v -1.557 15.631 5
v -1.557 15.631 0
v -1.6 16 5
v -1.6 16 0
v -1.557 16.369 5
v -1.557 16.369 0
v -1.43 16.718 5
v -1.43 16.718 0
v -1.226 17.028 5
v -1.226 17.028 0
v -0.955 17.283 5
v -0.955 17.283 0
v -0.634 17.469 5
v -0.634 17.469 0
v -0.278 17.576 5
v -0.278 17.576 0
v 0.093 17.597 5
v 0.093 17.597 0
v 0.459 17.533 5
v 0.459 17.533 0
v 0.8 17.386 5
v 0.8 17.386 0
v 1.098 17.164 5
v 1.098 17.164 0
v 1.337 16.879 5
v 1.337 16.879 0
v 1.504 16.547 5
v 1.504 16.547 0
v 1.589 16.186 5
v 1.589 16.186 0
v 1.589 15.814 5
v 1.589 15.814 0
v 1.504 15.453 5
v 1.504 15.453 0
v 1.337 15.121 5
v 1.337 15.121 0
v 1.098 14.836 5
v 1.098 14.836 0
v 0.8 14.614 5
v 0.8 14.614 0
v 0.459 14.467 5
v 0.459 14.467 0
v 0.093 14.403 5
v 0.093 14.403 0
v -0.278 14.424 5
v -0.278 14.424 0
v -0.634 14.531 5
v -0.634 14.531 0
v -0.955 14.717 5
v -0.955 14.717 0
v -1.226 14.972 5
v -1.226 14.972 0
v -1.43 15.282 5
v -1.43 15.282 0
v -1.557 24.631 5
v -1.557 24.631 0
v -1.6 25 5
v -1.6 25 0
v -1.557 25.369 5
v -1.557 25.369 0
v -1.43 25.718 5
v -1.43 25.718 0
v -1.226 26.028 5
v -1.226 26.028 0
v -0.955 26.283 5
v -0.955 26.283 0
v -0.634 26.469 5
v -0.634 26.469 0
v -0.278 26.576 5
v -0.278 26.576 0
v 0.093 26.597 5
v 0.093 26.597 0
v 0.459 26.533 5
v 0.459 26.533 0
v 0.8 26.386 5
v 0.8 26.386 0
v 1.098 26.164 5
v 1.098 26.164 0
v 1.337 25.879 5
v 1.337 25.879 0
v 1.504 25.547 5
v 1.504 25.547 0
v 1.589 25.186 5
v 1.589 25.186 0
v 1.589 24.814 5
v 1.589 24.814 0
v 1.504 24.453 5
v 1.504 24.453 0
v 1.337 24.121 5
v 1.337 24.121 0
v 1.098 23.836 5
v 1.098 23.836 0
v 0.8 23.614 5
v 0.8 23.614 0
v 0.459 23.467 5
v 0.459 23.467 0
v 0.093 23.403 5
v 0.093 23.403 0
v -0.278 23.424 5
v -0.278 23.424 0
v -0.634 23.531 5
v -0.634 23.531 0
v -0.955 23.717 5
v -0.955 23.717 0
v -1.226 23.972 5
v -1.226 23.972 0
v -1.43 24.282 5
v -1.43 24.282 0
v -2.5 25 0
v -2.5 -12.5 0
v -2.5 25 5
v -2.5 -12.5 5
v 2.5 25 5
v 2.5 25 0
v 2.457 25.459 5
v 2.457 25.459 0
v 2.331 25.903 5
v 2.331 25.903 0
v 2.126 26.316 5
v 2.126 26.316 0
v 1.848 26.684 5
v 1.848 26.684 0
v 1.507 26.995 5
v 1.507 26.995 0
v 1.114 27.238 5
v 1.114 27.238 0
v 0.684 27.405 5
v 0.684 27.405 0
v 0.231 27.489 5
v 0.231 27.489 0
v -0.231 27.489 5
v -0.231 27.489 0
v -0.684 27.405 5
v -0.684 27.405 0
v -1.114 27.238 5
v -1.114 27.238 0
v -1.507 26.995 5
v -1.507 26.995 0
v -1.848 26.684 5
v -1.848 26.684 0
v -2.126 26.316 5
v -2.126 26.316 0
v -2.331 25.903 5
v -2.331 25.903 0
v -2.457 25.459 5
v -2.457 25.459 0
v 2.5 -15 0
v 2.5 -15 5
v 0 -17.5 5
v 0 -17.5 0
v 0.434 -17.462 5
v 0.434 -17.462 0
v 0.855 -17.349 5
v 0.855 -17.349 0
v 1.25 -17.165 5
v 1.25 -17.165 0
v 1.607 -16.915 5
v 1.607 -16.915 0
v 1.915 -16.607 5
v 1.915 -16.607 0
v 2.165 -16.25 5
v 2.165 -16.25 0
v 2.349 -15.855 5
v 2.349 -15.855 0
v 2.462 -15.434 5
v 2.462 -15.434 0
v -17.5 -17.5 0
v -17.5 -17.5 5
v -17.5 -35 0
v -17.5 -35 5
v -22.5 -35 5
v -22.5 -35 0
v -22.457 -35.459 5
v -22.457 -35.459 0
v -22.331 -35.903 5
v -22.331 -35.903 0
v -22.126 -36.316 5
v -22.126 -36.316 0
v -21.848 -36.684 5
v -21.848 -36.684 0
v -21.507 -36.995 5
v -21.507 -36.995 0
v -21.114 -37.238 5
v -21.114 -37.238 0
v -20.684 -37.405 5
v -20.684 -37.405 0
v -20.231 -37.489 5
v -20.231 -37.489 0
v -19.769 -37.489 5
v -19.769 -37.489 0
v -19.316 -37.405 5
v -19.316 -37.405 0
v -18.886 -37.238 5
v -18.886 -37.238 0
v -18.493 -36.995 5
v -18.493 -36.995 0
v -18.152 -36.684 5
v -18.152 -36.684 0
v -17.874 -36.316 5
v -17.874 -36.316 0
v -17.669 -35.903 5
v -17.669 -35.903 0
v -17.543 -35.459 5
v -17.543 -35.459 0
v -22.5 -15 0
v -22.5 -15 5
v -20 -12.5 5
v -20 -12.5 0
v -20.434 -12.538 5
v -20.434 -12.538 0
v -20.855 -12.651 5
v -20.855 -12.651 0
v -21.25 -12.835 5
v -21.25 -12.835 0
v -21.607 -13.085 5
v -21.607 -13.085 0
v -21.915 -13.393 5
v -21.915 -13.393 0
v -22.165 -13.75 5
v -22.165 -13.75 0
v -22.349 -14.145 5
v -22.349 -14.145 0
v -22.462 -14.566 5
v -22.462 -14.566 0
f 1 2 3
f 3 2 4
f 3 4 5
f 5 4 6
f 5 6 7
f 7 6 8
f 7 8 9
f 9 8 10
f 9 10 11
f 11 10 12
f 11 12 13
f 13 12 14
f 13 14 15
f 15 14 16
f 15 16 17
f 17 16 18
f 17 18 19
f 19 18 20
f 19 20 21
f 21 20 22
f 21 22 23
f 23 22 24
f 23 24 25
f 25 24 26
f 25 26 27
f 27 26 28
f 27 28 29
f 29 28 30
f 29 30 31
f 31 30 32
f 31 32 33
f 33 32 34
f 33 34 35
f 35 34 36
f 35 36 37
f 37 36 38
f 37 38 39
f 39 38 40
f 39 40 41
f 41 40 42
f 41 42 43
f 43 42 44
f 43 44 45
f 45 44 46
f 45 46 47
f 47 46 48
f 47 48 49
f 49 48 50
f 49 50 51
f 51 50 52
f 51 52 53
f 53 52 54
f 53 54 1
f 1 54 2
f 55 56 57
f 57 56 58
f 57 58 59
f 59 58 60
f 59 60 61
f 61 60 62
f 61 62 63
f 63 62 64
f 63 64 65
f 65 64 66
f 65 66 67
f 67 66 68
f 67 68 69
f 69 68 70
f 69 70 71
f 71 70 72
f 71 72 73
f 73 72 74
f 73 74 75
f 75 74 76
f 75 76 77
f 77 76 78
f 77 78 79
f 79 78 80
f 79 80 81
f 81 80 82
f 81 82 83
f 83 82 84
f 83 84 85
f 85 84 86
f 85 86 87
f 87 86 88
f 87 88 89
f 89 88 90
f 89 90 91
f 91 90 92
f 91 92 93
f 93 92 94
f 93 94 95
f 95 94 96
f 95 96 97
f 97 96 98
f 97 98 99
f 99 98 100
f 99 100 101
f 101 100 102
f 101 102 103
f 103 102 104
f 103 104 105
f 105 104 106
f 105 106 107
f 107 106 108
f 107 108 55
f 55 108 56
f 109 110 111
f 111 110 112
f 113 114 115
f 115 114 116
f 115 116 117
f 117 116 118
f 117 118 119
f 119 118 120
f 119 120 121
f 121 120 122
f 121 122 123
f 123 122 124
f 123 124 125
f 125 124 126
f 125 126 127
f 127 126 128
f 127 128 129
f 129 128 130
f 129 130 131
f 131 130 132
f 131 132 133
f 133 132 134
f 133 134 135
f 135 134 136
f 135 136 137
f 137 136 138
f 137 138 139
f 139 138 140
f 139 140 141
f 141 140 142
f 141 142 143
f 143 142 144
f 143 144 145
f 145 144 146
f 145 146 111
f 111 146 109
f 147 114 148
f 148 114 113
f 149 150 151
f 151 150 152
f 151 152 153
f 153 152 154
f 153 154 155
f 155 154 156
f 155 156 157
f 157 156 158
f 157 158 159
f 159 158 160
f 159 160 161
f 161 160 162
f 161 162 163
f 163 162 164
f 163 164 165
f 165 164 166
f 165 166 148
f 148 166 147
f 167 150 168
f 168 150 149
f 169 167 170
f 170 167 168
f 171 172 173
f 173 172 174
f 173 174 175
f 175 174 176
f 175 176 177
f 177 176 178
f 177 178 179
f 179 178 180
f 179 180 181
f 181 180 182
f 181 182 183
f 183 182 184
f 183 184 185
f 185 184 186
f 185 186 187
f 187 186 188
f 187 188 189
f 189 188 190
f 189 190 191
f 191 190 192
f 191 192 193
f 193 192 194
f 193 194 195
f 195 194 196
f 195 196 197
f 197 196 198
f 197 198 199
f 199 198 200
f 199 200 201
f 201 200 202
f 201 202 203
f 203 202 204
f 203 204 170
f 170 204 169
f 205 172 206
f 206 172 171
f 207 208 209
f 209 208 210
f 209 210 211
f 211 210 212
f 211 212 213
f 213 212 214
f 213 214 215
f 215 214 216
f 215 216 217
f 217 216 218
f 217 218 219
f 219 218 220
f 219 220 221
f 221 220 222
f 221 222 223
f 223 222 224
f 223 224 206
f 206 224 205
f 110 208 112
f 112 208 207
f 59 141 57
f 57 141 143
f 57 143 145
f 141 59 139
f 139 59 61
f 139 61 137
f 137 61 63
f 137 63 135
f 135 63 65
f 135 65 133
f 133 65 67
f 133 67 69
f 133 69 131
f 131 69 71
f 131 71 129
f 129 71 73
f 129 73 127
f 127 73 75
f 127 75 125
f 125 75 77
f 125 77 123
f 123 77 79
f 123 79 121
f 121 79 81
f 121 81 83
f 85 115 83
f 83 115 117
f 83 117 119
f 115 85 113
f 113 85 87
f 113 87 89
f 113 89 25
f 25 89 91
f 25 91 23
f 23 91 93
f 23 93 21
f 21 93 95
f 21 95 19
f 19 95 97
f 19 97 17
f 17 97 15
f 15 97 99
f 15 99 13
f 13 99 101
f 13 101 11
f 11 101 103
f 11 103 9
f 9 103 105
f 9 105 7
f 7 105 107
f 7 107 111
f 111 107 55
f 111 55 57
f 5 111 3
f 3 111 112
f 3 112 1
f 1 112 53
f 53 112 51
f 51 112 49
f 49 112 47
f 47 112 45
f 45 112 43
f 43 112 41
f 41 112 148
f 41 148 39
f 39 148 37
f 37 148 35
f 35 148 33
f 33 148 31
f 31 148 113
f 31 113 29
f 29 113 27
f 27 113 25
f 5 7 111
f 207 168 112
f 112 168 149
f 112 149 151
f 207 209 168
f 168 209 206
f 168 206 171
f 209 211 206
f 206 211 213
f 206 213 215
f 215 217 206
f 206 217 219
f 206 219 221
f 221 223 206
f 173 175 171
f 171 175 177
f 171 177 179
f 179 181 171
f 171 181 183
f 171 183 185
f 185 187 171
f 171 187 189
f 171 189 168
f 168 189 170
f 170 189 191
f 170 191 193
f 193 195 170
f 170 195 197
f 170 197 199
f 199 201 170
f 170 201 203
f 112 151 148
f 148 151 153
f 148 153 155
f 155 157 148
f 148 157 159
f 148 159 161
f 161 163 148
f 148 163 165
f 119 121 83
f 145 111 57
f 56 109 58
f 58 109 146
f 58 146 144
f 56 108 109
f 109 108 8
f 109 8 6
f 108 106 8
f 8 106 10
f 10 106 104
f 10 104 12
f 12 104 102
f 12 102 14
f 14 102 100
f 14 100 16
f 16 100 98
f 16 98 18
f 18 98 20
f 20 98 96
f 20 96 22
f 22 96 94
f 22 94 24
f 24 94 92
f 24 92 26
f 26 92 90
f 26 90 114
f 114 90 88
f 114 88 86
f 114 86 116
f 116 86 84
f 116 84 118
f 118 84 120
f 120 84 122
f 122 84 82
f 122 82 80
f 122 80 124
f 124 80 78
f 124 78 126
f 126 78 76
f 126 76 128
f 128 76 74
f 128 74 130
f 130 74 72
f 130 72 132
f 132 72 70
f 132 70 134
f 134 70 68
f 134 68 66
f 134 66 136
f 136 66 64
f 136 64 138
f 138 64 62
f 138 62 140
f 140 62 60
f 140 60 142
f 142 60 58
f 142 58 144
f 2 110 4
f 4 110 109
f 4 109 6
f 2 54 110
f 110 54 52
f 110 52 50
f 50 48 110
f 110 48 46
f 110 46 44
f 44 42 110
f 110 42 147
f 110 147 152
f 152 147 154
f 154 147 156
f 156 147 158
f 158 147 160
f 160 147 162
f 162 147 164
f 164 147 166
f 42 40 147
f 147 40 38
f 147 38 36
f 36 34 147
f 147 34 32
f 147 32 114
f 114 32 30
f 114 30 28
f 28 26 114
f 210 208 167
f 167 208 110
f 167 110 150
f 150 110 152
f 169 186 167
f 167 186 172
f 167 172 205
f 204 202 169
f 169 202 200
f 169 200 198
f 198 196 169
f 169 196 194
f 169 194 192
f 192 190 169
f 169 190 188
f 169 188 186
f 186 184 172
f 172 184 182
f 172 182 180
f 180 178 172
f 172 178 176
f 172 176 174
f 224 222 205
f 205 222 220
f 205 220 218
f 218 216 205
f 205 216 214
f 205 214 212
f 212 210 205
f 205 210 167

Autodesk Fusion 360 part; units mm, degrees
sketch "스케치1" plane through (0, 0, 0) normal (0, 0, 1) x (1, 0, 0)
  line L0 (-2.5, 25) -> (-2.5, -15)
  arc A0 (-2.5, -15) -> (2.5, -15) centre (0, -15) ccw
  line L1 (2.5, -15) -> (2.5, 25)
  arc A1 (2.5, 25) -> (-2.5, 25) centre (0, 25) ccw
  line L2 (0, 25) -> (0, -15) construction
  line L3 (0, -12.5) -> (-20, -12.5)
  arc A2 (-20, -12.5) -> (-20, -17.5) centre (-20, -15) ccw
  line L4 (-20, -17.5) -> (0, -17.5)
  arc A3 (0, -17.5) -> (0, -12.5) centre (0, -15) ccw
  line L5 (0, -15) -> (-20, -15) construction
  line L6 (-22.5, -15) -> (-22.5, -35)
  arc A4 (-22.5, -35) -> (-17.5, -35) centre (-20, -35) ccw
  line L7 (-17.5, -35) -> (-17.5, -15)
  arc A5 (-17.5, -15) -> (-22.5, -15) centre (-20, -15) ccw
  line L8 (-20, -15) -> (-20, -35) construction
  circle A6 centre (0, 25) radius 1.6
  line L9 (-10, 16) -> (11, 16)
  circle A7 centre (0, 16) radius 1.6
  dimension "d1" = 5
  dimension "d2" = 5
  dimension "d3" = 5
  dimension "d4" = 3.2
  dimension "d5" = 9
  dimension "d6" = 3.2
  dimension "d9" = 20
extrude "돌출1" add sketch "스케치1" along normal blind 5 contours L0 L1 A1 L9 A7 | L0 L1 L3 A3 L9 A7 | L0 A0 L3 A3 | L0 A0 L3 L4 L7 A5 | A2 L4 L7 A5 | A2 L4 L6 A4 L7
